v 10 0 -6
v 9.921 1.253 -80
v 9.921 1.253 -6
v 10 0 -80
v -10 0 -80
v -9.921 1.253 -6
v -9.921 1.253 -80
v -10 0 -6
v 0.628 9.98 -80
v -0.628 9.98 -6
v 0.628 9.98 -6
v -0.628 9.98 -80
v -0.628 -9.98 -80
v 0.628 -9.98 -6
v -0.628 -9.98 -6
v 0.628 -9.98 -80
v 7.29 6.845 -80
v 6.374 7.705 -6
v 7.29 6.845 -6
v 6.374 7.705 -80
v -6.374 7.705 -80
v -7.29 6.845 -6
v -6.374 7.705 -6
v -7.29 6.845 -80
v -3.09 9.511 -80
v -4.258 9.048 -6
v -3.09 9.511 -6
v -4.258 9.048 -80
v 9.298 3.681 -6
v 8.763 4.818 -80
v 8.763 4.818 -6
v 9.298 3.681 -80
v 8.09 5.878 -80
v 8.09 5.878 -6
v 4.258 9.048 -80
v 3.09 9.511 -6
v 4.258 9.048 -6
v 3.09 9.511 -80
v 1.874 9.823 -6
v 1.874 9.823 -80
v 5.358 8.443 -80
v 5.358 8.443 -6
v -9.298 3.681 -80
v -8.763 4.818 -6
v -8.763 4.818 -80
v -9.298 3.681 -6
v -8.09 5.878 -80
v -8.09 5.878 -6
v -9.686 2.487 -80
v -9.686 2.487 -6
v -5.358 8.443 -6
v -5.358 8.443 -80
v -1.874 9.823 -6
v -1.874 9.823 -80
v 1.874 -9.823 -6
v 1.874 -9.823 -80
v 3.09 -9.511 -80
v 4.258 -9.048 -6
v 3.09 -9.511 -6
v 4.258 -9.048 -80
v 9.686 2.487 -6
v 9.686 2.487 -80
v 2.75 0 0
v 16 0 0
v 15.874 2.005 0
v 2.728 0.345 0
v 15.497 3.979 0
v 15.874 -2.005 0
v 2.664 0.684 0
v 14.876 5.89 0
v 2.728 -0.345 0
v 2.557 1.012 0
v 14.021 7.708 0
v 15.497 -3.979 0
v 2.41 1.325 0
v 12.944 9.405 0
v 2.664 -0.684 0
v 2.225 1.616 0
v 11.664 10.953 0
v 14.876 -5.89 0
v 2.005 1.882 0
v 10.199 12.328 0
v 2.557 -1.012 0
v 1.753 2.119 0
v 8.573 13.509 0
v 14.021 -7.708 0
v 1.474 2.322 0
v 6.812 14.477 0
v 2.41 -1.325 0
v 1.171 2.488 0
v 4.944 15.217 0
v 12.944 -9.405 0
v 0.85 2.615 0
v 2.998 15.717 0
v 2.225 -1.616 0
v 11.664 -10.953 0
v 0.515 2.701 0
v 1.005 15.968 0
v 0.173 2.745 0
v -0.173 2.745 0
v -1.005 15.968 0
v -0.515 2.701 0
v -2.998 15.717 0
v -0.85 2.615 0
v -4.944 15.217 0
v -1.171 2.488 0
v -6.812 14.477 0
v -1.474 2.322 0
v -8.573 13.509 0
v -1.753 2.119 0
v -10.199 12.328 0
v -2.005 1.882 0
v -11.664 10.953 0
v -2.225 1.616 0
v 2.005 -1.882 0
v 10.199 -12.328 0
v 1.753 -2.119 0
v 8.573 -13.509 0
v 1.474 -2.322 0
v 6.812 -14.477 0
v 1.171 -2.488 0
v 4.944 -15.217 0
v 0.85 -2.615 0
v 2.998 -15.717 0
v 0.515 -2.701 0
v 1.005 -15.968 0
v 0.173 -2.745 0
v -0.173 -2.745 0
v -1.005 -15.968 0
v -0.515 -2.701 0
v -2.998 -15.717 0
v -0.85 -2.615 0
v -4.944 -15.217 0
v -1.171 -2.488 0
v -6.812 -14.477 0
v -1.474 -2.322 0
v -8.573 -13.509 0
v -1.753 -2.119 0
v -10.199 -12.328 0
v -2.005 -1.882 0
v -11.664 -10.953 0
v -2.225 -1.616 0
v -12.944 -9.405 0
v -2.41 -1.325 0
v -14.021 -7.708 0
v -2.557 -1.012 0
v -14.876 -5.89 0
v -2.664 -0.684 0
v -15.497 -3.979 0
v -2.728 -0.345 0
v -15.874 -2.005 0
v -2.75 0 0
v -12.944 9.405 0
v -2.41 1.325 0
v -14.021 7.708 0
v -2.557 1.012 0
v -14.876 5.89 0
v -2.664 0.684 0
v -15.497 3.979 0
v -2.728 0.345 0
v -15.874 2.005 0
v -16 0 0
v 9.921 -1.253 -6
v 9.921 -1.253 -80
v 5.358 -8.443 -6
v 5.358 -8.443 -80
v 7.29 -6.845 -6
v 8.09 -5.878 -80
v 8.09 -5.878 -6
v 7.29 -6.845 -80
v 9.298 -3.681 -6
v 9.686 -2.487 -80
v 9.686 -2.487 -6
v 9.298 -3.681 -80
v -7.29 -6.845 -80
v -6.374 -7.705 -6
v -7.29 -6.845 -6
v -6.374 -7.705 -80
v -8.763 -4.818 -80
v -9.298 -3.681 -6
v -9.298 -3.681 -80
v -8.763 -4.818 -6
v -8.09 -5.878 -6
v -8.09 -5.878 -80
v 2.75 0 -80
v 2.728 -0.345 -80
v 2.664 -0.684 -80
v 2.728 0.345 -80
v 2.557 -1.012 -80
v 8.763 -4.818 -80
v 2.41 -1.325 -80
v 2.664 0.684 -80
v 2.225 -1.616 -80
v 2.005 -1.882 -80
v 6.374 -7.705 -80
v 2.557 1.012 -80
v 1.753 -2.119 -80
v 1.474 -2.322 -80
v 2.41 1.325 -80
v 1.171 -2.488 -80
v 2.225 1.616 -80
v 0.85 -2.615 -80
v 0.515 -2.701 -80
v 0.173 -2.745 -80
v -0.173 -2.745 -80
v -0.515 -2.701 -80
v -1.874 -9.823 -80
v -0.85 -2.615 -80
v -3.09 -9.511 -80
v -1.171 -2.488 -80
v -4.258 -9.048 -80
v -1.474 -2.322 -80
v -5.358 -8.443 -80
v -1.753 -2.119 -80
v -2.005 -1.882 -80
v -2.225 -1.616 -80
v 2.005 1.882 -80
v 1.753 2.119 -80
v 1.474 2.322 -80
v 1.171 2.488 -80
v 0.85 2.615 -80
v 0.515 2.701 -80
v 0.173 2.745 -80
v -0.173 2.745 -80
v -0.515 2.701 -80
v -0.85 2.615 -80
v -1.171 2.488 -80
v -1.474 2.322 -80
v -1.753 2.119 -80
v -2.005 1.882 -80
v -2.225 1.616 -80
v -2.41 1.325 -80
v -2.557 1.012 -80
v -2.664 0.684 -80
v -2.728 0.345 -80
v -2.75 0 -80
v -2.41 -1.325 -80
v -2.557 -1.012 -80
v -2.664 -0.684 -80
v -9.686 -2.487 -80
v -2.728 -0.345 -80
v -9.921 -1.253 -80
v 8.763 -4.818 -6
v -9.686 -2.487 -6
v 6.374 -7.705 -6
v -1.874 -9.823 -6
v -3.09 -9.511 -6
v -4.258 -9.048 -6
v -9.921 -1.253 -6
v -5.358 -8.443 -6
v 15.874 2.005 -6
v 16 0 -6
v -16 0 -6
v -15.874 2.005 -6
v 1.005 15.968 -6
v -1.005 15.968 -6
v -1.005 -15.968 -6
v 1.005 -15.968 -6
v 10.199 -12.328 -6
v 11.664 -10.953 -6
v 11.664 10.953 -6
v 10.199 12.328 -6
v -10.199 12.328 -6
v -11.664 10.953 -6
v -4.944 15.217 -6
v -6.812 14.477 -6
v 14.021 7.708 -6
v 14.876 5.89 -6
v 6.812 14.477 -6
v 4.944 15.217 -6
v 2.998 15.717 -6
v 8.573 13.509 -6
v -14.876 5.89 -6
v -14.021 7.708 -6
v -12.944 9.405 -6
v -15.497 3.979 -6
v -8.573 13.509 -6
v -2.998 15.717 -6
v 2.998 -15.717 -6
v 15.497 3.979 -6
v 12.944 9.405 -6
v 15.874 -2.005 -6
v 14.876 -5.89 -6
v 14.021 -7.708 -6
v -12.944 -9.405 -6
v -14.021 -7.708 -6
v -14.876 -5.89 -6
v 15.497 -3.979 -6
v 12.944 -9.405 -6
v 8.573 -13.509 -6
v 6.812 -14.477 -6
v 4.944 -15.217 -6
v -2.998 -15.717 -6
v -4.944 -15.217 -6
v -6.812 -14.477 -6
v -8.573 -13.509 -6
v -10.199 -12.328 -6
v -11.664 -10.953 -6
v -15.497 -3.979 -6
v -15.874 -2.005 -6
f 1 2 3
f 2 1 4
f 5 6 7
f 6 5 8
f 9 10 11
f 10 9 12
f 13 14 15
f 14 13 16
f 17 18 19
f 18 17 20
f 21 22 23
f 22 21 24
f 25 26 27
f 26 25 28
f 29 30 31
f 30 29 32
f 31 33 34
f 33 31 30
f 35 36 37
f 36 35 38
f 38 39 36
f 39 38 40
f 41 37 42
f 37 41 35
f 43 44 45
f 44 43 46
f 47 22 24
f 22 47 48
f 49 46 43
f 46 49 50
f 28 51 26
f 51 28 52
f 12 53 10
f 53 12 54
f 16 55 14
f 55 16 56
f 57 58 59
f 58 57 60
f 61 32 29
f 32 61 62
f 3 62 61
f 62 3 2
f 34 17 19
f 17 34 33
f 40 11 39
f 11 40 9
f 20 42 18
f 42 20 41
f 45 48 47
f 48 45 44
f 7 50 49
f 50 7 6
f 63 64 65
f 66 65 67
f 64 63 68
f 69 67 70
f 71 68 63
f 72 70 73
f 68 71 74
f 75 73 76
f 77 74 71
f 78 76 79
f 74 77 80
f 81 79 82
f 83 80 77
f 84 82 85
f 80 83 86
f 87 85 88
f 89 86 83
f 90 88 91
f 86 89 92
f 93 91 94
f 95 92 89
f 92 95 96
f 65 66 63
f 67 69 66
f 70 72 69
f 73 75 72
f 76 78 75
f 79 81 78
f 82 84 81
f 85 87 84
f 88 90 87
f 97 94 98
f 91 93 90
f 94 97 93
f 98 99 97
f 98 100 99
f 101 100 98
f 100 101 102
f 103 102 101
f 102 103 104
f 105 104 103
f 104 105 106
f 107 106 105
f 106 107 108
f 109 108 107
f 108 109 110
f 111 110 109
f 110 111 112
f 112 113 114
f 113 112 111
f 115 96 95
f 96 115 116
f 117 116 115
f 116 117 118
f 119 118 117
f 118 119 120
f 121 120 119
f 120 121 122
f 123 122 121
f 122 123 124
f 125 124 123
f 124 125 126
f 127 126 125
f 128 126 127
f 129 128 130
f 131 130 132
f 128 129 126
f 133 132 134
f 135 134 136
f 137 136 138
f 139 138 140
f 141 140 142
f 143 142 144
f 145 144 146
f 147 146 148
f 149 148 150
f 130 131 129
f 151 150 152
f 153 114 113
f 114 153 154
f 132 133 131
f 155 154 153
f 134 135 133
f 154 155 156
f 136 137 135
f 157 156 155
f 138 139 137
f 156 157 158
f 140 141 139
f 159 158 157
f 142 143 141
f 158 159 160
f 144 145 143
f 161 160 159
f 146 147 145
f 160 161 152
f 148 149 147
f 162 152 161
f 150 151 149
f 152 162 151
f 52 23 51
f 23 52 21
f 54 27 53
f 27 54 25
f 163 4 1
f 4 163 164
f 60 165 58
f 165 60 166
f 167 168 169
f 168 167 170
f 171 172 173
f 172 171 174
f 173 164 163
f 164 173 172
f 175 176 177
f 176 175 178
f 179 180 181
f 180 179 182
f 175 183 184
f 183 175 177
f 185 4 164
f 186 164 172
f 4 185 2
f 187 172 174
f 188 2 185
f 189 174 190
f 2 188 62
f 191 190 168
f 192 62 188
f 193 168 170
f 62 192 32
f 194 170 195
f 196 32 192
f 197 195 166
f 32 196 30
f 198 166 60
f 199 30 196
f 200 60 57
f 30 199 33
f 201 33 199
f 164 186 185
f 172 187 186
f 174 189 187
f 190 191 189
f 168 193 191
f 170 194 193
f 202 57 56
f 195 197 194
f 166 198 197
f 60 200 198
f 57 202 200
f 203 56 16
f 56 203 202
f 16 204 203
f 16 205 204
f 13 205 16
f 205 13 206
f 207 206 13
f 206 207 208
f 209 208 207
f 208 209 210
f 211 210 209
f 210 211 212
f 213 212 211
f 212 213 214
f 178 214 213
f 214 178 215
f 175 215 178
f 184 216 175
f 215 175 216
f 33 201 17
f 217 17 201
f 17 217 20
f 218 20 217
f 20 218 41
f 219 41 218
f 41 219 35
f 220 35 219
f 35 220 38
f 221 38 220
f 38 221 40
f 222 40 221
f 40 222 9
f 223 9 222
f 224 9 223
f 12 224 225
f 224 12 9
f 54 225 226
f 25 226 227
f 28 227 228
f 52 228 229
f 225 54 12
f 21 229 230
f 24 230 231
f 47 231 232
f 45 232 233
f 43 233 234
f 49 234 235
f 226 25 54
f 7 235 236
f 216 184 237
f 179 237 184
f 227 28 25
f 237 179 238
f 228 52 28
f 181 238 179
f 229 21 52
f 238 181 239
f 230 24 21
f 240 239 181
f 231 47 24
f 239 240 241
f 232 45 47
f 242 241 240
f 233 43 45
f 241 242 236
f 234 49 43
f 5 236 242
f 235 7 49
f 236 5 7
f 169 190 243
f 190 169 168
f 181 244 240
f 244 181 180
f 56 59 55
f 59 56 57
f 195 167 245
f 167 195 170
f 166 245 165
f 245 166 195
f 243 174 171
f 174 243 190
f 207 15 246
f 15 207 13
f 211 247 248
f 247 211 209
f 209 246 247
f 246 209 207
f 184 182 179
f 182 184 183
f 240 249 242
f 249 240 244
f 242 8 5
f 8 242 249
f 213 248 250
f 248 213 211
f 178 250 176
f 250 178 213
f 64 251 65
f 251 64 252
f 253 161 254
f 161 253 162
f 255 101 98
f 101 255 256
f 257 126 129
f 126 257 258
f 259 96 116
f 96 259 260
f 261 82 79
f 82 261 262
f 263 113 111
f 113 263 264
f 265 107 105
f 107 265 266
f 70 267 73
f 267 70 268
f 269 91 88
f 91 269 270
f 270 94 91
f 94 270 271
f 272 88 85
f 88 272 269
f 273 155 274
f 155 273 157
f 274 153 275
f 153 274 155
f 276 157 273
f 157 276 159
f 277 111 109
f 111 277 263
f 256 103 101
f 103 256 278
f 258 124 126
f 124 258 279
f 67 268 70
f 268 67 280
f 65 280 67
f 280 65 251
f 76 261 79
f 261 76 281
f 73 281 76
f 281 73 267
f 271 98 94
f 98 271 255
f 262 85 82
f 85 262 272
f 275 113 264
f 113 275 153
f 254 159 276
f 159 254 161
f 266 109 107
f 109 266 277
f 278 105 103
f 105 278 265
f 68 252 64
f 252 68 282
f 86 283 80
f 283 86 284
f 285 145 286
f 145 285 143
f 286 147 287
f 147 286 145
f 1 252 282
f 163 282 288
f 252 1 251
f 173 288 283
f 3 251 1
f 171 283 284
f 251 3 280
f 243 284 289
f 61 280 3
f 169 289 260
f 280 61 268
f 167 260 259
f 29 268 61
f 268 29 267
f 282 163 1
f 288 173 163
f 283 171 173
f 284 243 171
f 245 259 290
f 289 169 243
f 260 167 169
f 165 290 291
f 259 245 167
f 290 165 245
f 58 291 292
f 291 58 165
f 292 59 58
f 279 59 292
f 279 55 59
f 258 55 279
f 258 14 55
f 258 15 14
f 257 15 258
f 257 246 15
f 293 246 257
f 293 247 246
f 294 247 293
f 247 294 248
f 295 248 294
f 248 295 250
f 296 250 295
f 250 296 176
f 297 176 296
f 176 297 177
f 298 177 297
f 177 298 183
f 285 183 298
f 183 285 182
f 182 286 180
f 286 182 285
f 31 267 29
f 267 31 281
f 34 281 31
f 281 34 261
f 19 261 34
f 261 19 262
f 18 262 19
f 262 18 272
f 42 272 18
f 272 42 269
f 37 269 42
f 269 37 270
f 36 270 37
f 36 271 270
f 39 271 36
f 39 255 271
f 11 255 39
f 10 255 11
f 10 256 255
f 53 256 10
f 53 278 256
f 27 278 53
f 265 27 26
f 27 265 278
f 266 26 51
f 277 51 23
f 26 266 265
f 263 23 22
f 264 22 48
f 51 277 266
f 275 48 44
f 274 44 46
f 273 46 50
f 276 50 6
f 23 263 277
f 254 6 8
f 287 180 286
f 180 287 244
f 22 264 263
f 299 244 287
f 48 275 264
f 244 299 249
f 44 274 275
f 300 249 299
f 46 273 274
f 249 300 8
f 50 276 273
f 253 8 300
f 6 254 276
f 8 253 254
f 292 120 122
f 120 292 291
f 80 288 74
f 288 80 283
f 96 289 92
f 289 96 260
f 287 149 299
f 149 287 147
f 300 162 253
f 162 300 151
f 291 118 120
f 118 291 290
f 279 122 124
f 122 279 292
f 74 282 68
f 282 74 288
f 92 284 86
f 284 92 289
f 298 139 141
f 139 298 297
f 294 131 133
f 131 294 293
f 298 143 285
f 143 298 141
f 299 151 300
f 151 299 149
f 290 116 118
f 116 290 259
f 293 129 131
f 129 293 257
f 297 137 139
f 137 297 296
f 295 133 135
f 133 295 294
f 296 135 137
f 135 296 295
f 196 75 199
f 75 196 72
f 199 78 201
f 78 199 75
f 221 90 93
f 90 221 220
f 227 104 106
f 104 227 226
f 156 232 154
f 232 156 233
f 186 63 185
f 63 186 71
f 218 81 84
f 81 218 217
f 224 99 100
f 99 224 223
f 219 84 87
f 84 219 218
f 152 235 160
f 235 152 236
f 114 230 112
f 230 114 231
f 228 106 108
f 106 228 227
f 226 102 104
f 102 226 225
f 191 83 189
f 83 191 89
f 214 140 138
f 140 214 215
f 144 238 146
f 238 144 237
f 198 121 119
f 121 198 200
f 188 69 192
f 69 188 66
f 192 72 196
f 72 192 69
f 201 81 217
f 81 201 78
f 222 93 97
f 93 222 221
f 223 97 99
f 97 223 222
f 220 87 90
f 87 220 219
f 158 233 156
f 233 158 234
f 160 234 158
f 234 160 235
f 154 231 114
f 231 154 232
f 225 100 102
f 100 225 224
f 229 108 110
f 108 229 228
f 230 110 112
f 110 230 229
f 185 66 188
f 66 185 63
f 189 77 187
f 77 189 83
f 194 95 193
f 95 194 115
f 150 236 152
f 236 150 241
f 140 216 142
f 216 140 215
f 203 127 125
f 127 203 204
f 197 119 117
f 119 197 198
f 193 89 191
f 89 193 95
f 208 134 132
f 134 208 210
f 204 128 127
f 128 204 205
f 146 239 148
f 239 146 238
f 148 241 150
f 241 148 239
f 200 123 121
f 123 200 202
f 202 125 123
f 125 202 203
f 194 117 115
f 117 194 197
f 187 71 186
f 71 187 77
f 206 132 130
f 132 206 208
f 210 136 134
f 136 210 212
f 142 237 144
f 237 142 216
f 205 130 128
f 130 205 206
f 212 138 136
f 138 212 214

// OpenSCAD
$fn = 50;


difference() {
	union() {
		translate(v = [0, 0, -80.0000000000]) {
			cylinder(h = 80, r = 10.0000000000);
		}
		translate(v = [0, 0, -6.0000000000]) {
			cylinder(h = 6, r = 16.0000000000);
		}
	}
	union() {
		#translate(v = [0, 0, -80]) {
			cylinder(h = 80, r = 2.7500000000);
		}
	}
}
